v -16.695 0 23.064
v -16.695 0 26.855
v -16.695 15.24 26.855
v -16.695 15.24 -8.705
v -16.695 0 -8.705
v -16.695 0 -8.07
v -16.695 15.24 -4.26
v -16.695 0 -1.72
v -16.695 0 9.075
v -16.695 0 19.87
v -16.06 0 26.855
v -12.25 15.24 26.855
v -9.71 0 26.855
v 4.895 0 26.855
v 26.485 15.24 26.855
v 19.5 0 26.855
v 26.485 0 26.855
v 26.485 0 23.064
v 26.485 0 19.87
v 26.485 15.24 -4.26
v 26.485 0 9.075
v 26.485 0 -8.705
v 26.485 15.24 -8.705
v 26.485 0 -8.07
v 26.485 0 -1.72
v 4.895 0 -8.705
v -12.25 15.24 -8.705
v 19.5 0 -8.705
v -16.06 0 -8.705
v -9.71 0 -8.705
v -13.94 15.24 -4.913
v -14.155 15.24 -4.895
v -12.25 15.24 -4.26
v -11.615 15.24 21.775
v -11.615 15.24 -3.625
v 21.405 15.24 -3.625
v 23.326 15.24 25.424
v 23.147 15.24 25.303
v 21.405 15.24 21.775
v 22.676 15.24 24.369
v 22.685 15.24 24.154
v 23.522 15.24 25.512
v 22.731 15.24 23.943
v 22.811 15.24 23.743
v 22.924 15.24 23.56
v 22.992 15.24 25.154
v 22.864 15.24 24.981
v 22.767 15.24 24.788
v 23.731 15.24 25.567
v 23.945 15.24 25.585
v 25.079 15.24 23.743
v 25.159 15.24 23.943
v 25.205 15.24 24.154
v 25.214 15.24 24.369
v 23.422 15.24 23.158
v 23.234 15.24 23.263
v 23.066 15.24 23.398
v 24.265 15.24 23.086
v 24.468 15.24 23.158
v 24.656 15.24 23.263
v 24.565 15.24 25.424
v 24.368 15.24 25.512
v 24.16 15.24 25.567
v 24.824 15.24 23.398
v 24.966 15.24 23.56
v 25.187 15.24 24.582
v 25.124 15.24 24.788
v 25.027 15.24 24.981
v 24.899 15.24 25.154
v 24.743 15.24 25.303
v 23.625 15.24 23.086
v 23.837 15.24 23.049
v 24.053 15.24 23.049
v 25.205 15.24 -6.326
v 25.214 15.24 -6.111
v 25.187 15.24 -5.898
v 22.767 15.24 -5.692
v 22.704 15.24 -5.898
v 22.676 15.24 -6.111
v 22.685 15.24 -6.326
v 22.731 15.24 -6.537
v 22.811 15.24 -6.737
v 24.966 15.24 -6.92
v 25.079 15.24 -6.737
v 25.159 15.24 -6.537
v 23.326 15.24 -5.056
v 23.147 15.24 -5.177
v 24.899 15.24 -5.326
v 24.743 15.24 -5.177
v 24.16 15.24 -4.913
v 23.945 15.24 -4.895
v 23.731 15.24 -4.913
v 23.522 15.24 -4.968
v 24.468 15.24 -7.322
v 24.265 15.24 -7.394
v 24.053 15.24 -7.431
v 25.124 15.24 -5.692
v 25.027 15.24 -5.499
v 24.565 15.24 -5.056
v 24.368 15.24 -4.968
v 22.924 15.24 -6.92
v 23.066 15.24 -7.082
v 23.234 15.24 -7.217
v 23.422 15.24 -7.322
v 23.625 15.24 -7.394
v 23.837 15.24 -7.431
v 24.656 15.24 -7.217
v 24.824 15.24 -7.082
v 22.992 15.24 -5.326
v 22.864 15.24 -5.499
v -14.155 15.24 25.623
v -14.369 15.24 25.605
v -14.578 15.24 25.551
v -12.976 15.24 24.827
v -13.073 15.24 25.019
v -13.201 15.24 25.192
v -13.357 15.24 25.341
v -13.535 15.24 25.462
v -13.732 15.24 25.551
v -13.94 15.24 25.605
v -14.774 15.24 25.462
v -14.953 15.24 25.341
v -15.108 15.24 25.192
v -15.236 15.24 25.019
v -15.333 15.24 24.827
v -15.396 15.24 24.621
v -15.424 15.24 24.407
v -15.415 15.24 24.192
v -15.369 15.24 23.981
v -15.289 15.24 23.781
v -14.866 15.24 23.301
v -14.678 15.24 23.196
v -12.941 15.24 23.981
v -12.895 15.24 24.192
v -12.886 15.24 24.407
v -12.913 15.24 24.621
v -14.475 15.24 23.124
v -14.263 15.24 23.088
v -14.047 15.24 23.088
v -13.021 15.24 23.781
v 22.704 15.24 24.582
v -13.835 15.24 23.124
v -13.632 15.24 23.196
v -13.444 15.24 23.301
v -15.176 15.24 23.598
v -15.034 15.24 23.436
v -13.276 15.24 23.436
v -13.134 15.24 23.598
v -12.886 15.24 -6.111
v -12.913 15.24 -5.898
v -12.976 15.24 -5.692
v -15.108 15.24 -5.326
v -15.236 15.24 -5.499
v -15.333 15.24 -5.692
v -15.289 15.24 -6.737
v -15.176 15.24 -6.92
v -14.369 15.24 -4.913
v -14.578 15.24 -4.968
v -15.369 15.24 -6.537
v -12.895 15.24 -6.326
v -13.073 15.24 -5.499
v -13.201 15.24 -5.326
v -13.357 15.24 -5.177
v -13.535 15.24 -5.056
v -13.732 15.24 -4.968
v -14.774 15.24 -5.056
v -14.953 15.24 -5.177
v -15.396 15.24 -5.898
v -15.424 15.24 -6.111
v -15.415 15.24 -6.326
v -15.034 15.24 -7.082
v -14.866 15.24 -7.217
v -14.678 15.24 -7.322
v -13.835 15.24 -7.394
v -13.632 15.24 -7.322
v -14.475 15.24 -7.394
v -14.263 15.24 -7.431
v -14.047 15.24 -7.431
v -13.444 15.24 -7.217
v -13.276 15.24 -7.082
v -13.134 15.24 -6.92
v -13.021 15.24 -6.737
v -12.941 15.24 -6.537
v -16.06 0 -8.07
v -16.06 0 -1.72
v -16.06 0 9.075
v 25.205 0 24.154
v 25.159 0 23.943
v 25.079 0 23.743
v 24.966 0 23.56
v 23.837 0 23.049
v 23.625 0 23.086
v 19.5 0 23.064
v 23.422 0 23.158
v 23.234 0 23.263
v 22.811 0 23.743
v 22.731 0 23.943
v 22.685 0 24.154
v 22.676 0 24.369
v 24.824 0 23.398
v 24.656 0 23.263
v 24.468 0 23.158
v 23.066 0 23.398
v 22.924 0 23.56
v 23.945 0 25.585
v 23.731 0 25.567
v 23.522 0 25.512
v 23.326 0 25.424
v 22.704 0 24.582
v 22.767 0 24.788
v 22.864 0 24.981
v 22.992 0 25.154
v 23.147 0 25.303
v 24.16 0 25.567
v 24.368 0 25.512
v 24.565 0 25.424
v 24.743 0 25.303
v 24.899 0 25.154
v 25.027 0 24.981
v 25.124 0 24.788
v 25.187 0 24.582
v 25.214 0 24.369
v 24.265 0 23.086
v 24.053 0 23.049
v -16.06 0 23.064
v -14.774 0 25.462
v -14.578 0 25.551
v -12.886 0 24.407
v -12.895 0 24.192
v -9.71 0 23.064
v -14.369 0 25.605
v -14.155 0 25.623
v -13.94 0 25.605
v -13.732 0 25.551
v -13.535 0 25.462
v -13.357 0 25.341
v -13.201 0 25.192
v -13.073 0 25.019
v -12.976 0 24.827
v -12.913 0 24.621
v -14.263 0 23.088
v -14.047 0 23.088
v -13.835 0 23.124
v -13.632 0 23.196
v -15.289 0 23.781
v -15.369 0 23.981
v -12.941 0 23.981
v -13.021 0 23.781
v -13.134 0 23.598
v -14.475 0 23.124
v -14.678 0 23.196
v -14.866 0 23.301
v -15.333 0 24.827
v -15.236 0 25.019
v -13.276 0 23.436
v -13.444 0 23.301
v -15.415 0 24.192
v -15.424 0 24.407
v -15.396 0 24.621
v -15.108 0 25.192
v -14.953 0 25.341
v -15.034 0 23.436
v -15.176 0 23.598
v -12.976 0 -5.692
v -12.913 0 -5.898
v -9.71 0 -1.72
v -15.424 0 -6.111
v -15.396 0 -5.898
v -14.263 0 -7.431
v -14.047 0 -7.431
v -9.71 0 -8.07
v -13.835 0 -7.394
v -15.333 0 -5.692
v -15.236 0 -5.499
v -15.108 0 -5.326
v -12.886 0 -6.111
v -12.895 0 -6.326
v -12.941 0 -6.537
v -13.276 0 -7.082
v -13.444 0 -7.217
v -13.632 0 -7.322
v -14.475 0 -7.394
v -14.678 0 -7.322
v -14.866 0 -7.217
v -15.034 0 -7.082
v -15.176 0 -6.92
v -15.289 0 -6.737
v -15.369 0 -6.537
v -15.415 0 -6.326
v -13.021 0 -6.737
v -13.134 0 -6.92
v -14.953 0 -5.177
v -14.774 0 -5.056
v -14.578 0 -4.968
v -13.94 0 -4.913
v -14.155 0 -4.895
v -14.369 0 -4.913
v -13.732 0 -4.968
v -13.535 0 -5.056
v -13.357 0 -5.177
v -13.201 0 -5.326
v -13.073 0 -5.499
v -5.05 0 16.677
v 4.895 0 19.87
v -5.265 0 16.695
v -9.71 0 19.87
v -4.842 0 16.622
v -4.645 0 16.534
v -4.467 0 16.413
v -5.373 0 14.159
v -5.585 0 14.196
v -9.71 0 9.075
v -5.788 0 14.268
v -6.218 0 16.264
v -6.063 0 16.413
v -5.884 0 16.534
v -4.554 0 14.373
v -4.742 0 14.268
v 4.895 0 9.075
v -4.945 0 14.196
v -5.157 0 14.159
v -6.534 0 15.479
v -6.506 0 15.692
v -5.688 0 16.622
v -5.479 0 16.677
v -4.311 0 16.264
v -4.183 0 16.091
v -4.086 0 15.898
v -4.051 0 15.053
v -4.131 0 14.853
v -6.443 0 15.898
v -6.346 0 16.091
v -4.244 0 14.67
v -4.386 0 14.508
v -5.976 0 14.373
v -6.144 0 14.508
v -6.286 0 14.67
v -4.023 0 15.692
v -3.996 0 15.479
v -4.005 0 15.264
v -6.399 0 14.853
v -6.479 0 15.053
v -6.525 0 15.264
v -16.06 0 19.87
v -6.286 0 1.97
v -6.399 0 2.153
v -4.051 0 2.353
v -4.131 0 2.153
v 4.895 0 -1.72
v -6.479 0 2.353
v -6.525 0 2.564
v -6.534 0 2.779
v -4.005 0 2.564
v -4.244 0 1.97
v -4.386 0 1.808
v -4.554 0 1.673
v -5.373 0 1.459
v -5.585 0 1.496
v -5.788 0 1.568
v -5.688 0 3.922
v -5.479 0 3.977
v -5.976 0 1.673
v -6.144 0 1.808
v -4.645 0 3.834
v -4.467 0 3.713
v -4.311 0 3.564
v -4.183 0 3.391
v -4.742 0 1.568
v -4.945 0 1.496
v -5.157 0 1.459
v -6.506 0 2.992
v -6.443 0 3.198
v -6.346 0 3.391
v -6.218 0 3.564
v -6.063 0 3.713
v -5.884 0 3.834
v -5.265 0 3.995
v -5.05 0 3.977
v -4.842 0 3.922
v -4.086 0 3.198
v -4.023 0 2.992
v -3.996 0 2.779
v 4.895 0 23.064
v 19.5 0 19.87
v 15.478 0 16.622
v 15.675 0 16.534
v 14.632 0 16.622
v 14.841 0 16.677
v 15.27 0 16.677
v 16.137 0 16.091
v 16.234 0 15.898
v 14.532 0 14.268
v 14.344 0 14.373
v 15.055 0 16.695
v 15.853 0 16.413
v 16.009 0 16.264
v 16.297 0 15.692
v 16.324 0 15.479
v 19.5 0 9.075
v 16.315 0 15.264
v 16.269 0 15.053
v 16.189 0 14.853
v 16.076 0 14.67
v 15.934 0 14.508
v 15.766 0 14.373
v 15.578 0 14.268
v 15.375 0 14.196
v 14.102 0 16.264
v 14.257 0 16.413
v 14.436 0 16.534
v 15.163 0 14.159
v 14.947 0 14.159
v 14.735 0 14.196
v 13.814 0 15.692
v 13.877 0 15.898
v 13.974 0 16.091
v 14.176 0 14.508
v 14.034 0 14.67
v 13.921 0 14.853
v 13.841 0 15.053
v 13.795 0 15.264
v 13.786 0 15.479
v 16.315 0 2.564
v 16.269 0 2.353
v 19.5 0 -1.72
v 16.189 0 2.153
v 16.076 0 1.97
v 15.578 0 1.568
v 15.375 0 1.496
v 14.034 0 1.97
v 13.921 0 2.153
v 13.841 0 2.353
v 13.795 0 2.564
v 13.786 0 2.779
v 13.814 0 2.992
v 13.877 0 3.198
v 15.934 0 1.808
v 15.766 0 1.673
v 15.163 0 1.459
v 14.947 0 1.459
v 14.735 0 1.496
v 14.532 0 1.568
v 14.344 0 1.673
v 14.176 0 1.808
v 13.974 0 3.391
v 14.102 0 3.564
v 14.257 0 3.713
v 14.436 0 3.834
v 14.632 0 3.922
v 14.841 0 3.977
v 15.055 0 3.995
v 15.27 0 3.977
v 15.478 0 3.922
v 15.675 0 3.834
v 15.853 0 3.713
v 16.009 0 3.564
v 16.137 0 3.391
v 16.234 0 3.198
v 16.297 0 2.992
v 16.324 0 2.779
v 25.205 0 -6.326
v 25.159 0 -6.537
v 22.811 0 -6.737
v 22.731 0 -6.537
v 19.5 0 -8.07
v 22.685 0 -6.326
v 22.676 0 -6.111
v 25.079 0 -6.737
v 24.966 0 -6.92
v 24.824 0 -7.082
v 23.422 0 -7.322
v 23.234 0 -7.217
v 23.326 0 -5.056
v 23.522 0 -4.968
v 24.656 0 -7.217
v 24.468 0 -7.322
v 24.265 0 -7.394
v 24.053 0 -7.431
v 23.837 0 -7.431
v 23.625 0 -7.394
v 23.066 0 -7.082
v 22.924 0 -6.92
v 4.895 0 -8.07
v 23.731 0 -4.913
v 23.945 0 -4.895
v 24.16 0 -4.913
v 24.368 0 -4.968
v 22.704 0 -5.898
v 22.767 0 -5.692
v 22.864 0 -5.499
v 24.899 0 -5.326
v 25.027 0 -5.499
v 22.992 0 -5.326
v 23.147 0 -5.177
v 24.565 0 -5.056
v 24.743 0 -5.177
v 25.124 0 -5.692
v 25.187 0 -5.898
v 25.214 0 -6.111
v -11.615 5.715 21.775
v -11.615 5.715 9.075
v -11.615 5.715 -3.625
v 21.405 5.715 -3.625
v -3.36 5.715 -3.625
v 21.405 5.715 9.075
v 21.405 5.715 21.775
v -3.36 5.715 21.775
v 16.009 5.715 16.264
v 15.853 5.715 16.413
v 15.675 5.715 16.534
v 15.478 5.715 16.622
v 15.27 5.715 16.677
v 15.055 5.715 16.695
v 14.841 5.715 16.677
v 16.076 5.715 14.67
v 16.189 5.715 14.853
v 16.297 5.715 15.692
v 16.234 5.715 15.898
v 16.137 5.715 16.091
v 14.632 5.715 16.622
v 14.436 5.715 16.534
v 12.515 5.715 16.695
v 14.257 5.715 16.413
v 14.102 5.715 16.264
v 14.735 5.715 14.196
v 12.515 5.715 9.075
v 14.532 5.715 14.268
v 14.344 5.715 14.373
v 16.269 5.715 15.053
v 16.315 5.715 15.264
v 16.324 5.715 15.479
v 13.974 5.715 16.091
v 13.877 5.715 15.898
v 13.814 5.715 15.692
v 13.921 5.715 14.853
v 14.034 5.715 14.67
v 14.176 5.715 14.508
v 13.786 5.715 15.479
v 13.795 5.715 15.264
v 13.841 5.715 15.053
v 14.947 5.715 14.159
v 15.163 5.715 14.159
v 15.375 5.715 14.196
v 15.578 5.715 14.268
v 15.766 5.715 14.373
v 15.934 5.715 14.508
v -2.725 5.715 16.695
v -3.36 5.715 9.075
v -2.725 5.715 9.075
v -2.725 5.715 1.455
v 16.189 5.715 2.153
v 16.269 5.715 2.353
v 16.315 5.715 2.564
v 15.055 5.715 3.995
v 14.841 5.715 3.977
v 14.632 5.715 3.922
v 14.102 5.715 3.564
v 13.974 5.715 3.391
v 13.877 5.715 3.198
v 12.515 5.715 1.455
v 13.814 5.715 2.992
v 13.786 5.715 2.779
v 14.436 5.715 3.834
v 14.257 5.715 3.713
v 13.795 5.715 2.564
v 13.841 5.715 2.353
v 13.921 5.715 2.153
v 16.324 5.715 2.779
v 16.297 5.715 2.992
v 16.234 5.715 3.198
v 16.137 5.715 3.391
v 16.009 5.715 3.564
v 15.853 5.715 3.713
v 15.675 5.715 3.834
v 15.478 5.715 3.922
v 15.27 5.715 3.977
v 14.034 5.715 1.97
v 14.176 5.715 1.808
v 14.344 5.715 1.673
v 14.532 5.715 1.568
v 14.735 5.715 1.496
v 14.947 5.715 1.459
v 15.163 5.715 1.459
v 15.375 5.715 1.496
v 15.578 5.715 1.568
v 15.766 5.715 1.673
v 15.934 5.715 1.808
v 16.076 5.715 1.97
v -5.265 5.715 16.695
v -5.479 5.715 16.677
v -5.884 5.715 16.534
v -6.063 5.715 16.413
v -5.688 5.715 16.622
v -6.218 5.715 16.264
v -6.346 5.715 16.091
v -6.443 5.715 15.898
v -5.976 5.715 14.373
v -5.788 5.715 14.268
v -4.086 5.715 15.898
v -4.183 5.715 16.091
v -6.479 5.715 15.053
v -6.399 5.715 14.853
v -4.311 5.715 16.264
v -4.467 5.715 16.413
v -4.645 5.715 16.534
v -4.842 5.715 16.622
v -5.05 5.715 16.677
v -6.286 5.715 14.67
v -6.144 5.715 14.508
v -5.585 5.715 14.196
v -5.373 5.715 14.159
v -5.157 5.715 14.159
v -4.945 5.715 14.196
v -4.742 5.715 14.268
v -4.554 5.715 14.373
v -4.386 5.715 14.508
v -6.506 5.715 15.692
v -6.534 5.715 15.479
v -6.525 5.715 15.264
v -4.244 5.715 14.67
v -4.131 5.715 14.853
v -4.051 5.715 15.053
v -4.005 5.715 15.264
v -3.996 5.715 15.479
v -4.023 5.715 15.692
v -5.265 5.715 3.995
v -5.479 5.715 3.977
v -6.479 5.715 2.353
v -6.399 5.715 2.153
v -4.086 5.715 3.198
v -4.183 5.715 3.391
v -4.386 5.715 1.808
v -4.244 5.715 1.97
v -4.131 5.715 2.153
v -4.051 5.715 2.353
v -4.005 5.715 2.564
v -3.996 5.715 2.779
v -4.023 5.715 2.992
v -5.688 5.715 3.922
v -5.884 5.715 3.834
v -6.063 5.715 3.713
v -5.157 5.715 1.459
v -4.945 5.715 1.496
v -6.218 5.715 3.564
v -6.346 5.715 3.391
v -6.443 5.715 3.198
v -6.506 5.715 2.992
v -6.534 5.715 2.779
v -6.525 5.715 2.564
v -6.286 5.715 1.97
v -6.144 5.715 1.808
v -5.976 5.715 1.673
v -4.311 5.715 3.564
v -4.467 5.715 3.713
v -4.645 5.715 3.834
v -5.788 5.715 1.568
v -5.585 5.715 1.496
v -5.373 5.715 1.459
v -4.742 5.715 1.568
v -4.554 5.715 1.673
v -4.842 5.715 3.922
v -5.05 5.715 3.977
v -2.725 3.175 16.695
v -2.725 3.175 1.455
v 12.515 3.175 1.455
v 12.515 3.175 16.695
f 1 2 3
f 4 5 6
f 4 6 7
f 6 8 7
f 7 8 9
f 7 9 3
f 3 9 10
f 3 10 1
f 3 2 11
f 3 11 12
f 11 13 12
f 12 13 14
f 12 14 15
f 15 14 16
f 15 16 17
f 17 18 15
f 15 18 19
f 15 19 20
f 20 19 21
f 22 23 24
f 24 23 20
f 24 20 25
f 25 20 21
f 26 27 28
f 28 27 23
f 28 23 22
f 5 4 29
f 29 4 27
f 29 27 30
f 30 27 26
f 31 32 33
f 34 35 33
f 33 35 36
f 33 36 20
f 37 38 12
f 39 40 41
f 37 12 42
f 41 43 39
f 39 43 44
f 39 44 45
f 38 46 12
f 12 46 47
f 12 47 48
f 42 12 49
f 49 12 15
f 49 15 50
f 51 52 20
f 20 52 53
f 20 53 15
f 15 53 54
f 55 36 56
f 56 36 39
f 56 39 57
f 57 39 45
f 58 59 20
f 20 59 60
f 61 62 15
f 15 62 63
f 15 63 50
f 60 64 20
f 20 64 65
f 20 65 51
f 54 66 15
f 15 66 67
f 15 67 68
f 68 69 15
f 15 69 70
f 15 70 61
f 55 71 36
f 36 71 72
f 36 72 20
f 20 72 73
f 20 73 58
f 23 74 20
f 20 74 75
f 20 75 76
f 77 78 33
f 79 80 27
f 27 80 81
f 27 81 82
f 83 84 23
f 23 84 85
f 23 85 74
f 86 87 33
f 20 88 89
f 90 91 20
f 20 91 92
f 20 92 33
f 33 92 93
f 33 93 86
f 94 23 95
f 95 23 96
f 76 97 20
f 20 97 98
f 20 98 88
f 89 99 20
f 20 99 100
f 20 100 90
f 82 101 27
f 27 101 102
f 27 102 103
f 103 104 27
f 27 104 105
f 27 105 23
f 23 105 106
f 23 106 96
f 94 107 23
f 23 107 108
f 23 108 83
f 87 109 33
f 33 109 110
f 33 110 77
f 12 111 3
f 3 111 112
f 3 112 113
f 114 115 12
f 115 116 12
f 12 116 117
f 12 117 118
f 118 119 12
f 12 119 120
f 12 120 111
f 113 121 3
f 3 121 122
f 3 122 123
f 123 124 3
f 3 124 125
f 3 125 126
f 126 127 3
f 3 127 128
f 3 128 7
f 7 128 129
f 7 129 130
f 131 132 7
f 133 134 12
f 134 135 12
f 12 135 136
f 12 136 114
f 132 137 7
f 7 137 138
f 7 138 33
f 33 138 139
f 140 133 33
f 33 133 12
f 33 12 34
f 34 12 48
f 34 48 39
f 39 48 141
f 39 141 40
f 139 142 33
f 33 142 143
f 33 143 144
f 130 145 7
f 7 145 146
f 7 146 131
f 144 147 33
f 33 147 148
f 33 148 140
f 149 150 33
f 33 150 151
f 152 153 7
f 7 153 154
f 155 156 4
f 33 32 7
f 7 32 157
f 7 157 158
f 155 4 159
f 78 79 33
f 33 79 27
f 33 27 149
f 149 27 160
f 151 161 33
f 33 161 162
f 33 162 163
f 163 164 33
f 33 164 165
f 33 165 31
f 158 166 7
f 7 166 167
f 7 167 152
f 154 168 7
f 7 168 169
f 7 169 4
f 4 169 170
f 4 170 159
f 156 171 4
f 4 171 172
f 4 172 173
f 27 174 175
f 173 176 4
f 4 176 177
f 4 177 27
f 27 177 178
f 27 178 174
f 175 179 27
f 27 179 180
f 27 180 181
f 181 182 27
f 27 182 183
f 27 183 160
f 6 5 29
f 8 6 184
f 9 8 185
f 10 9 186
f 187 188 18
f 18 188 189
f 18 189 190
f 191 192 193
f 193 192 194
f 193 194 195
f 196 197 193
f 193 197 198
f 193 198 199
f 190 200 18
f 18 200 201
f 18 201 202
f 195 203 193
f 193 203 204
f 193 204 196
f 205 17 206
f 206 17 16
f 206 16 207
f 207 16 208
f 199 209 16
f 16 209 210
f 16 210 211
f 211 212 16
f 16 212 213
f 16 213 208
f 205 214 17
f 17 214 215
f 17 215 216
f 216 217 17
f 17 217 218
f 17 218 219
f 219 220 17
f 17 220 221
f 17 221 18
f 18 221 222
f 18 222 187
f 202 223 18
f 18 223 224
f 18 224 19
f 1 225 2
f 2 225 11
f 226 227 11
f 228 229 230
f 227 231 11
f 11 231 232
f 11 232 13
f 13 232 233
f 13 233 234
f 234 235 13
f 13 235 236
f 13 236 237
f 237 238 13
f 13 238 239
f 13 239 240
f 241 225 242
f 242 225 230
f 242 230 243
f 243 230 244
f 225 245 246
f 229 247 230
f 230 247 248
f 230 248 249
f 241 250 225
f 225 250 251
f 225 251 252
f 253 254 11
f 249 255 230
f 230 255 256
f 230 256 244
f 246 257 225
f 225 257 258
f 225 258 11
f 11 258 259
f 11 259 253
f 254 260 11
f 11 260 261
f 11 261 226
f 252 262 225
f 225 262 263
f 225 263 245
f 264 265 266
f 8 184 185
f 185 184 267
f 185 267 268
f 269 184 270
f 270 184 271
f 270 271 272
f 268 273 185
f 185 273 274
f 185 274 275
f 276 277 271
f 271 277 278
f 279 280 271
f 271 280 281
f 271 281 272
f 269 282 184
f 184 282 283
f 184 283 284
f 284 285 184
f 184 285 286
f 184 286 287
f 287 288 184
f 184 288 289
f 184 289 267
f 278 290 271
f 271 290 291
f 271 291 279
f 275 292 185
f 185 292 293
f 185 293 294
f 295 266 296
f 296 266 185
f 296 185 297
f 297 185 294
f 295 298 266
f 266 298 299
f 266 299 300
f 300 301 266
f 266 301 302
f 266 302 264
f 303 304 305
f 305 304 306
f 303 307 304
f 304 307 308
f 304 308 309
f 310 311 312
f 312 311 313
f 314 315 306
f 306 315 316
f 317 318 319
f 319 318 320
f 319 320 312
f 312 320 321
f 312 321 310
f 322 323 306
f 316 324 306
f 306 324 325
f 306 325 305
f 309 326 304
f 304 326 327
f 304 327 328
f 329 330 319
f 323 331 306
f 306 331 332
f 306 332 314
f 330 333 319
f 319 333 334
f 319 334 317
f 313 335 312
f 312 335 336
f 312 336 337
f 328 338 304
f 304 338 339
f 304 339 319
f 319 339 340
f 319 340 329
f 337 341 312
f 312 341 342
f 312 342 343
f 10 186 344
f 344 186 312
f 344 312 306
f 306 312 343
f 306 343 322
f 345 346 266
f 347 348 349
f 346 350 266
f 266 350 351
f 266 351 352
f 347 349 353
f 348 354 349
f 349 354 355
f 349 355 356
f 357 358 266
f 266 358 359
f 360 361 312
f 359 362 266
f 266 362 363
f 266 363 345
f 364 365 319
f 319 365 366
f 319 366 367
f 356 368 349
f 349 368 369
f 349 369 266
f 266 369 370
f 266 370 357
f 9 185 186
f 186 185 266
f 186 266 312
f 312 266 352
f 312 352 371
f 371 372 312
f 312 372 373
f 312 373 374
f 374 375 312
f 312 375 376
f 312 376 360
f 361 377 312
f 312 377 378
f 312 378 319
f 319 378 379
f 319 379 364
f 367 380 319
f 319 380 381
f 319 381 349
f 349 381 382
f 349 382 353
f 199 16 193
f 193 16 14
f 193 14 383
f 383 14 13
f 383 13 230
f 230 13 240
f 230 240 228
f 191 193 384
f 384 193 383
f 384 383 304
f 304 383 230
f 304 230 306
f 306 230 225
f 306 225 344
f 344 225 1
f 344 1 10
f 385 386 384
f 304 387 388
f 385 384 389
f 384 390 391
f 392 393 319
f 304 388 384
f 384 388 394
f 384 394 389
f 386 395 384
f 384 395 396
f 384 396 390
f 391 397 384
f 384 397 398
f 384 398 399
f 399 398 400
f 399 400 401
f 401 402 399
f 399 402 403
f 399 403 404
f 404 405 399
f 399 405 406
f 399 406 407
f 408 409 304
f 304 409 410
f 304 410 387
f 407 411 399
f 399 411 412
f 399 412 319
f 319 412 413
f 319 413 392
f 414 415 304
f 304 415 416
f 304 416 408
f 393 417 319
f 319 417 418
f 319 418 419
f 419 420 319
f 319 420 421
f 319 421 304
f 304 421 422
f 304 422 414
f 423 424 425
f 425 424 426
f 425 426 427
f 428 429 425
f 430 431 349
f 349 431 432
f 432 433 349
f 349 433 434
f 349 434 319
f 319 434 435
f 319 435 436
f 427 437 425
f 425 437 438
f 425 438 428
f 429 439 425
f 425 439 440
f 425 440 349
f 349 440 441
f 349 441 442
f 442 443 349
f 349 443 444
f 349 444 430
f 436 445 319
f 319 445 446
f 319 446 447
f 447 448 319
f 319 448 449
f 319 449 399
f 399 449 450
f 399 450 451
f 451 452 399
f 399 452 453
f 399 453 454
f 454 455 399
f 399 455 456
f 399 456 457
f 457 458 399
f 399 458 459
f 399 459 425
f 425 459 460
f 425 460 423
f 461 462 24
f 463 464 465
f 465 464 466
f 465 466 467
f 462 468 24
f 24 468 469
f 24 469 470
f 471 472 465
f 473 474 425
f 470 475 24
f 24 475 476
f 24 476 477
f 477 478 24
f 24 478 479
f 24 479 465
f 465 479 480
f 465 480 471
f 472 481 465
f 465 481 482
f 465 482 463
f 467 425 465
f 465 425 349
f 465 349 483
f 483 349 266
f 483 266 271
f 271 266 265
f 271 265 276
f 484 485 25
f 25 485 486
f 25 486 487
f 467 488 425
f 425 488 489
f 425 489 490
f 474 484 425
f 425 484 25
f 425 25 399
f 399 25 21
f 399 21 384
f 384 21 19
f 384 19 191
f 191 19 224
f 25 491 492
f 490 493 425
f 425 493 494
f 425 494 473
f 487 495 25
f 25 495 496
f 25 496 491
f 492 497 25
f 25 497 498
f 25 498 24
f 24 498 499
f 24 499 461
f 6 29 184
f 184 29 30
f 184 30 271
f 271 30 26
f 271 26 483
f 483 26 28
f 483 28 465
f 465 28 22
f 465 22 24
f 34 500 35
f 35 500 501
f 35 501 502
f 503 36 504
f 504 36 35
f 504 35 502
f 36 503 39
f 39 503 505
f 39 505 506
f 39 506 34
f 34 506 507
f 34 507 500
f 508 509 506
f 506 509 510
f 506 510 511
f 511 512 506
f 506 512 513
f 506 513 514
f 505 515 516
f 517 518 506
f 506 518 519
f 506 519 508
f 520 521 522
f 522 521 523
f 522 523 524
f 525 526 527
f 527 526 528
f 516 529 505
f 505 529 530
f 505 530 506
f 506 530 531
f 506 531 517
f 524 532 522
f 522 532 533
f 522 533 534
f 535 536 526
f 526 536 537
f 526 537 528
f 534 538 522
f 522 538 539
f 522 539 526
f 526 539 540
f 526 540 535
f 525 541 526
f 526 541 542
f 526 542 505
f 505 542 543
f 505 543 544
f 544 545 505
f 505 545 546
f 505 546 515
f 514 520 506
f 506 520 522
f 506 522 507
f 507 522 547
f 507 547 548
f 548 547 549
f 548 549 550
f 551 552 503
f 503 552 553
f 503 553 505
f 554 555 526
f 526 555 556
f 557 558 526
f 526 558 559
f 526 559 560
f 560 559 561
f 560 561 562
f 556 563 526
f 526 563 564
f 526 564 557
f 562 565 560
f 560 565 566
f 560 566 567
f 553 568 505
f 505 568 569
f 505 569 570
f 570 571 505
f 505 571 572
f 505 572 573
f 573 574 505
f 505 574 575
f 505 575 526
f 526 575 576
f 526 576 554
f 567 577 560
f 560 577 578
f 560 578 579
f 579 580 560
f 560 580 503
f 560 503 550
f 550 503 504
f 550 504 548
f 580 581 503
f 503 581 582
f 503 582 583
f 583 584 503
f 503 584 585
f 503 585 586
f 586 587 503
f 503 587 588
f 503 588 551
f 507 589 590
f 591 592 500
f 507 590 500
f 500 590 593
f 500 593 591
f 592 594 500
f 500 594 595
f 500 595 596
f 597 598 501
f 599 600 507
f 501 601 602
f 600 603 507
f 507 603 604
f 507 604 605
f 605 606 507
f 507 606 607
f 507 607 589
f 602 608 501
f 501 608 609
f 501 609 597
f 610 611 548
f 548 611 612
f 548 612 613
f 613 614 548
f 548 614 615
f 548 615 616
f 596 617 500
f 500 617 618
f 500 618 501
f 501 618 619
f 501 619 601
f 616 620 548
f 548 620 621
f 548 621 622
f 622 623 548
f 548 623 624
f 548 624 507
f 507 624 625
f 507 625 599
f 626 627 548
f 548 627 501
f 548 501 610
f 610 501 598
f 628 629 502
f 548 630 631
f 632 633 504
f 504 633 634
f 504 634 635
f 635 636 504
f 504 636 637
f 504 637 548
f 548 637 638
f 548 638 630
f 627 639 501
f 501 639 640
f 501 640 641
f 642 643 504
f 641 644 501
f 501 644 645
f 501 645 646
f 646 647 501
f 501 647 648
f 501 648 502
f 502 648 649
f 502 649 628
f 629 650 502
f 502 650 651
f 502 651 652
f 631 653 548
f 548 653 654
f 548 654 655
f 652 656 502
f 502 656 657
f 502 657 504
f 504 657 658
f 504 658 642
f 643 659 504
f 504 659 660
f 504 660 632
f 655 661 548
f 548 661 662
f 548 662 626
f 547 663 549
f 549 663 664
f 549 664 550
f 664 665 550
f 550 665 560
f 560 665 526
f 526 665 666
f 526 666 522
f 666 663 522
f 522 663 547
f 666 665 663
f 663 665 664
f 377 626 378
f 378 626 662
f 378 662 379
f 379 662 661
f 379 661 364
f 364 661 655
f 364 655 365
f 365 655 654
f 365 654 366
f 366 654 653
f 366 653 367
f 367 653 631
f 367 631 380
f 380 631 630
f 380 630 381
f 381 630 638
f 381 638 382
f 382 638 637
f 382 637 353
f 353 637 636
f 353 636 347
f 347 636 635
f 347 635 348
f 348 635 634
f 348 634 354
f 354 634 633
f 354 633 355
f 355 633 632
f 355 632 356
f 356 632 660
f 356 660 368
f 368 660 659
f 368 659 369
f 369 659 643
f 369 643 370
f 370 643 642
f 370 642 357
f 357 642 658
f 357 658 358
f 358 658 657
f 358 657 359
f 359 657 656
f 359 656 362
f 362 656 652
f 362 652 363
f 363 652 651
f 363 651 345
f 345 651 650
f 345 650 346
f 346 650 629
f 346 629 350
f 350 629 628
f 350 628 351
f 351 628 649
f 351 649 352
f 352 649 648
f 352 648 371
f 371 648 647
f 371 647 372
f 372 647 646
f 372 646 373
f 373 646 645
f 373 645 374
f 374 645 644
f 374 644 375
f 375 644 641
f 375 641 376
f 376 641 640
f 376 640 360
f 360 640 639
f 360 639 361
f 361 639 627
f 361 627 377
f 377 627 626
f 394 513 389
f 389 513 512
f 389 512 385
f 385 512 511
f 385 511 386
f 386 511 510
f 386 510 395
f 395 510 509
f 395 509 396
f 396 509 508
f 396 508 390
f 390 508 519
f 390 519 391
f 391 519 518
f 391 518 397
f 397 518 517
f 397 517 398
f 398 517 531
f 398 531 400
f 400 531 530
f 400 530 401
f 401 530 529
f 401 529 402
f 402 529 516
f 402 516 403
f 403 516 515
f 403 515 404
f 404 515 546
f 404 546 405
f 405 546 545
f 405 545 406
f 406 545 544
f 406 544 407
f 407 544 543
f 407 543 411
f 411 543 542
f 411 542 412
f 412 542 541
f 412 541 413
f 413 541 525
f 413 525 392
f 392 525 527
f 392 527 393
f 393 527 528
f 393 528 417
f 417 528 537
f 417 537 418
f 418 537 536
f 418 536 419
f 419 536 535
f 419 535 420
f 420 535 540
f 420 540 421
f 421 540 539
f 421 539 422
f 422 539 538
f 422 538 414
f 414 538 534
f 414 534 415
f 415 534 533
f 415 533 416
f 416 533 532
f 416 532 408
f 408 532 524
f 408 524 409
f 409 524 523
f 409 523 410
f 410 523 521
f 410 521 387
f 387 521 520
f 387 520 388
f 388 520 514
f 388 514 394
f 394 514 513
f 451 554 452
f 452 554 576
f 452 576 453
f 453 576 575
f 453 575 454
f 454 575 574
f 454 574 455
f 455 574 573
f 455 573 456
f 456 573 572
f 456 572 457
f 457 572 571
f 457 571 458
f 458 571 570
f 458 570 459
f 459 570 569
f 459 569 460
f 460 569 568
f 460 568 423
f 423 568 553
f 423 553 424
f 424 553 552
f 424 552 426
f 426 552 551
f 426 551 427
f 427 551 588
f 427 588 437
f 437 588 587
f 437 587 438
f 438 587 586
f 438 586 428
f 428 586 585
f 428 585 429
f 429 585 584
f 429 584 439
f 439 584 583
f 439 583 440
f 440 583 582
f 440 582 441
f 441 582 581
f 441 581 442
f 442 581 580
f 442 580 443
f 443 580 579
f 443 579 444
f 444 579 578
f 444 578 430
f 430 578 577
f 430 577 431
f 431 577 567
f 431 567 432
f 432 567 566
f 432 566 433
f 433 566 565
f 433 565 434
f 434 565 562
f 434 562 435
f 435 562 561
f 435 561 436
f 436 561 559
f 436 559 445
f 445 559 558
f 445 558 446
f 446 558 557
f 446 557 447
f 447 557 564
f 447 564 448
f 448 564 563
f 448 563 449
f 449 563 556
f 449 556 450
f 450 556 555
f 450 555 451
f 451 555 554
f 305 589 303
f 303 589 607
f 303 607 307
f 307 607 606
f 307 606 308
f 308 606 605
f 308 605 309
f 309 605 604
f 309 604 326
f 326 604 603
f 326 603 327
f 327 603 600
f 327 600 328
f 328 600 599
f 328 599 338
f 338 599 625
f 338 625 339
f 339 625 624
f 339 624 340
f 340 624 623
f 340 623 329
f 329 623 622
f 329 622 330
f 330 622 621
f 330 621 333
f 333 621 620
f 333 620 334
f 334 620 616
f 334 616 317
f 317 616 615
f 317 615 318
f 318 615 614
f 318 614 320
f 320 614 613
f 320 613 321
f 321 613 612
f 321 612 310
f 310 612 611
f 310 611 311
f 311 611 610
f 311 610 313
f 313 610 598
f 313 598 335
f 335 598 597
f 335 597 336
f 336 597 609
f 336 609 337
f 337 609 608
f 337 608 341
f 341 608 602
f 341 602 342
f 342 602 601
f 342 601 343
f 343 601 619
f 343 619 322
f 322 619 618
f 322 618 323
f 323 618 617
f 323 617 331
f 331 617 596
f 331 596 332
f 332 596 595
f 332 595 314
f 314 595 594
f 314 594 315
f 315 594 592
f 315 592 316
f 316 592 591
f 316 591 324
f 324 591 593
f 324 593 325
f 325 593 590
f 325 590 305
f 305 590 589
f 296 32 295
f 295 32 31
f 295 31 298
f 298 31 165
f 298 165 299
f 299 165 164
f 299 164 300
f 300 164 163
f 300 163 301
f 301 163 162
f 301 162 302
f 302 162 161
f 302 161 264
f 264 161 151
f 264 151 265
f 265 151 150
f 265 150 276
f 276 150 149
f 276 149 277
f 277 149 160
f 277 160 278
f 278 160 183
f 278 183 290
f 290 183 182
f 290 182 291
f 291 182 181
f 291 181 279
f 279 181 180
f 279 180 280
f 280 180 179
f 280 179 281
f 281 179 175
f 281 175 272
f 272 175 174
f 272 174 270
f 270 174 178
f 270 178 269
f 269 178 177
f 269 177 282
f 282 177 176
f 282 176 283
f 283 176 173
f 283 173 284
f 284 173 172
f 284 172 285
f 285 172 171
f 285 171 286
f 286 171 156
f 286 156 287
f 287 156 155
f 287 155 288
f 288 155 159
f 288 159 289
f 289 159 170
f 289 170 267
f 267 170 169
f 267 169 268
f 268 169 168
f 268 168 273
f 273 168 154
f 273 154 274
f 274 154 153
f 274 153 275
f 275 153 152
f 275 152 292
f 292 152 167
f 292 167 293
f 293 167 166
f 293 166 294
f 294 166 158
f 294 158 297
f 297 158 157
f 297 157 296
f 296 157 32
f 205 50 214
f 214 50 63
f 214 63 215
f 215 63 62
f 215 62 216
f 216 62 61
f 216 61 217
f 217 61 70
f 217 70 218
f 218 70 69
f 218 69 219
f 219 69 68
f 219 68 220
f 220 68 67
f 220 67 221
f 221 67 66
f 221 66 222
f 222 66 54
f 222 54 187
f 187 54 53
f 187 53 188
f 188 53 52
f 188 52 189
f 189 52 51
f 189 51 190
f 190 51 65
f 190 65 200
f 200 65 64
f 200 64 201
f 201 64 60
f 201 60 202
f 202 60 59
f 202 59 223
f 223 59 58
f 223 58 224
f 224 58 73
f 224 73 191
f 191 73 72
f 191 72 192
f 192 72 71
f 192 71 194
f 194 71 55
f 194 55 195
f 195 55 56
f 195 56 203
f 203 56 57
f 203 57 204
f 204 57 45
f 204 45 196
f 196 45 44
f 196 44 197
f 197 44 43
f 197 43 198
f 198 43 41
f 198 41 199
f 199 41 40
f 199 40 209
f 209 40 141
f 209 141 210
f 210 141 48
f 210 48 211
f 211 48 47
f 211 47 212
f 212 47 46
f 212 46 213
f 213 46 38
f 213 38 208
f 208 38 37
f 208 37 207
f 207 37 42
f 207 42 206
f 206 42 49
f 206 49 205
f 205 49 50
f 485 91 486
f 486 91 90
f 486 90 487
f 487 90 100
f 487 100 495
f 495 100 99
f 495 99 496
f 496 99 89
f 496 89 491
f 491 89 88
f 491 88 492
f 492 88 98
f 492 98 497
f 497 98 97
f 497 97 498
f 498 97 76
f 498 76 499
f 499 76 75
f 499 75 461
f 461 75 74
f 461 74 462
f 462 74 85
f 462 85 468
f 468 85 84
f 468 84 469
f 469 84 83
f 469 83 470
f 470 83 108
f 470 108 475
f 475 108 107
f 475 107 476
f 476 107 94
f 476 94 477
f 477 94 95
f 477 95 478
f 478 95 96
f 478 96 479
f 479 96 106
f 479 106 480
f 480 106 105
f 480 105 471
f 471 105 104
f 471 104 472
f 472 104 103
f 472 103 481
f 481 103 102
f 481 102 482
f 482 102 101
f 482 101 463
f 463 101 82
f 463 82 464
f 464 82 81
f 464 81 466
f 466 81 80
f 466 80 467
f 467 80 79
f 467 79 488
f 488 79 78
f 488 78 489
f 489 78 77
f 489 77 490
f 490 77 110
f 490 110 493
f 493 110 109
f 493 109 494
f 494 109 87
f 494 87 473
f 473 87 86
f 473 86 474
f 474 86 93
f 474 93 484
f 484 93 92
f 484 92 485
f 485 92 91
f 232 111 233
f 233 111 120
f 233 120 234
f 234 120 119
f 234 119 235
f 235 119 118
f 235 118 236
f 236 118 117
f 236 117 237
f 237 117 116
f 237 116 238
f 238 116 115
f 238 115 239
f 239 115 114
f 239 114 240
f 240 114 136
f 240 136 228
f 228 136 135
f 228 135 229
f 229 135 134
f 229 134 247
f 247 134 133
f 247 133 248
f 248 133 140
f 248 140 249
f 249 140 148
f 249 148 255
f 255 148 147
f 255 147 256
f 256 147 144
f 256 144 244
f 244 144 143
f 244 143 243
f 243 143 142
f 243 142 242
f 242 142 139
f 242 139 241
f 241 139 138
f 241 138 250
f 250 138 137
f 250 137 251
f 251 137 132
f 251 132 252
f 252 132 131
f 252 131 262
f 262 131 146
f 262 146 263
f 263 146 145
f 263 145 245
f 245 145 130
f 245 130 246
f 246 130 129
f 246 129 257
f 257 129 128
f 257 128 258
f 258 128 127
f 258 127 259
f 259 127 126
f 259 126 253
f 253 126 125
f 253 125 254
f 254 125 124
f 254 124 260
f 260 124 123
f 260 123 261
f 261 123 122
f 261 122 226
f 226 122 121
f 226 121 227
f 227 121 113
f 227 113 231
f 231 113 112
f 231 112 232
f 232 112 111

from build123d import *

# Parameters (mm, degrees)
SKETCH1_W           = 43.18
SKETCH1_H           = 35.56
BOSS_EXTRUDE1_DEPTH = 15.24
SKETCH2_W           = 33.02
SKETCH2_H           = 25.4
CUT_EXTRUDE1_DEPTH  = 9.525
SKETCH4_W           = 15.24
SKETCH4_H           = 15.24
CUT_EXTRUDE2_DEPTH  = 2.54
SKETCH7_R           = 1.27
CUT_EXTRUDE3_DEPTH  = 6.715
SKETCH8_R           = 1.27
CUT_EXTRUDE4_DEPTH  = 16.24


with BuildPart() as part:
    # Sketch1 → Boss-Extrude1 (new body)
    with BuildSketch(Plane(origin=(0, 0, 0), x_dir=(1, 0, 0), z_dir=(0, 1, 0))):
        with Locations((4.895164319, -9.074835681)):
            Rectangle(SKETCH1_W, SKETCH1_H)
    extrude(amount=BOSS_EXTRUDE1_DEPTH)

    # Sketch2 → Cut-Extrude1 (cut)
    with BuildSketch(Plane(origin=(0, 15.24, 0), x_dir=(1, 0, 0), z_dir=(0, 1, 0))):
        with Locations((4.895164319, -9.074835681)):
            Rectangle(SKETCH2_W, SKETCH2_H)
    extrude(amount=-CUT_EXTRUDE1_DEPTH, mode=Mode.SUBTRACT)

    # Sketch4 → Cut-Extrude2 (cut)
    with BuildSketch(Plane(origin=(0, 5.715, 0), x_dir=(1, 0, 0), z_dir=(0, 1, 0))):
        with Locations((4.895164319, -9.074835681)):
            Rectangle(SKETCH4_W, SKETCH4_H)
    extrude(amount=-CUT_EXTRUDE2_DEPTH, mode=Mode.SUBTRACT)

    # Sketch7 → Cut-Extrude3 (cut, through all)
    with BuildSketch(Plane(origin=(0, 5.715, 0), x_dir=(1, 0, 0), z_dir=(0, 1, 0))):
        with Locations((-5.264835681, -2.724835681)):
            Circle(SKETCH7_R)
        with Locations((-5.264835681, -15.424835681)):
            Circle(SKETCH7_R)
        with Locations((15.055164319, -2.724835681)):
            Circle(SKETCH7_R)
        with Locations((15.055164319, -15.424835681)):
            Circle(SKETCH7_R)
    extrude(amount=-CUT_EXTRUDE3_DEPTH, mode=Mode.SUBTRACT)

    # Sketch8 → Cut-Extrude4 (cut, through all)
    with BuildSketch(Plane(origin=(0, 15.24, 0), x_dir=(1, 0, 0), z_dir=(0, 1, 0))):
        with Locations((-14.154835681, 6.165164319)):
            Circle(SKETCH8_R)
        with Locations((-14.154835681, -24.353191234)):
            Circle(SKETCH8_R)
        with Locations((23.945164319, 6.165164319)):
            Circle(SKETCH8_R)
        with Locations((23.945164319, -24.314835681)):
            Circle(SKETCH8_R)
    extrude(amount=-CUT_EXTRUDE4_DEPTH, mode=Mode.SUBTRACT)


solid = part.part
